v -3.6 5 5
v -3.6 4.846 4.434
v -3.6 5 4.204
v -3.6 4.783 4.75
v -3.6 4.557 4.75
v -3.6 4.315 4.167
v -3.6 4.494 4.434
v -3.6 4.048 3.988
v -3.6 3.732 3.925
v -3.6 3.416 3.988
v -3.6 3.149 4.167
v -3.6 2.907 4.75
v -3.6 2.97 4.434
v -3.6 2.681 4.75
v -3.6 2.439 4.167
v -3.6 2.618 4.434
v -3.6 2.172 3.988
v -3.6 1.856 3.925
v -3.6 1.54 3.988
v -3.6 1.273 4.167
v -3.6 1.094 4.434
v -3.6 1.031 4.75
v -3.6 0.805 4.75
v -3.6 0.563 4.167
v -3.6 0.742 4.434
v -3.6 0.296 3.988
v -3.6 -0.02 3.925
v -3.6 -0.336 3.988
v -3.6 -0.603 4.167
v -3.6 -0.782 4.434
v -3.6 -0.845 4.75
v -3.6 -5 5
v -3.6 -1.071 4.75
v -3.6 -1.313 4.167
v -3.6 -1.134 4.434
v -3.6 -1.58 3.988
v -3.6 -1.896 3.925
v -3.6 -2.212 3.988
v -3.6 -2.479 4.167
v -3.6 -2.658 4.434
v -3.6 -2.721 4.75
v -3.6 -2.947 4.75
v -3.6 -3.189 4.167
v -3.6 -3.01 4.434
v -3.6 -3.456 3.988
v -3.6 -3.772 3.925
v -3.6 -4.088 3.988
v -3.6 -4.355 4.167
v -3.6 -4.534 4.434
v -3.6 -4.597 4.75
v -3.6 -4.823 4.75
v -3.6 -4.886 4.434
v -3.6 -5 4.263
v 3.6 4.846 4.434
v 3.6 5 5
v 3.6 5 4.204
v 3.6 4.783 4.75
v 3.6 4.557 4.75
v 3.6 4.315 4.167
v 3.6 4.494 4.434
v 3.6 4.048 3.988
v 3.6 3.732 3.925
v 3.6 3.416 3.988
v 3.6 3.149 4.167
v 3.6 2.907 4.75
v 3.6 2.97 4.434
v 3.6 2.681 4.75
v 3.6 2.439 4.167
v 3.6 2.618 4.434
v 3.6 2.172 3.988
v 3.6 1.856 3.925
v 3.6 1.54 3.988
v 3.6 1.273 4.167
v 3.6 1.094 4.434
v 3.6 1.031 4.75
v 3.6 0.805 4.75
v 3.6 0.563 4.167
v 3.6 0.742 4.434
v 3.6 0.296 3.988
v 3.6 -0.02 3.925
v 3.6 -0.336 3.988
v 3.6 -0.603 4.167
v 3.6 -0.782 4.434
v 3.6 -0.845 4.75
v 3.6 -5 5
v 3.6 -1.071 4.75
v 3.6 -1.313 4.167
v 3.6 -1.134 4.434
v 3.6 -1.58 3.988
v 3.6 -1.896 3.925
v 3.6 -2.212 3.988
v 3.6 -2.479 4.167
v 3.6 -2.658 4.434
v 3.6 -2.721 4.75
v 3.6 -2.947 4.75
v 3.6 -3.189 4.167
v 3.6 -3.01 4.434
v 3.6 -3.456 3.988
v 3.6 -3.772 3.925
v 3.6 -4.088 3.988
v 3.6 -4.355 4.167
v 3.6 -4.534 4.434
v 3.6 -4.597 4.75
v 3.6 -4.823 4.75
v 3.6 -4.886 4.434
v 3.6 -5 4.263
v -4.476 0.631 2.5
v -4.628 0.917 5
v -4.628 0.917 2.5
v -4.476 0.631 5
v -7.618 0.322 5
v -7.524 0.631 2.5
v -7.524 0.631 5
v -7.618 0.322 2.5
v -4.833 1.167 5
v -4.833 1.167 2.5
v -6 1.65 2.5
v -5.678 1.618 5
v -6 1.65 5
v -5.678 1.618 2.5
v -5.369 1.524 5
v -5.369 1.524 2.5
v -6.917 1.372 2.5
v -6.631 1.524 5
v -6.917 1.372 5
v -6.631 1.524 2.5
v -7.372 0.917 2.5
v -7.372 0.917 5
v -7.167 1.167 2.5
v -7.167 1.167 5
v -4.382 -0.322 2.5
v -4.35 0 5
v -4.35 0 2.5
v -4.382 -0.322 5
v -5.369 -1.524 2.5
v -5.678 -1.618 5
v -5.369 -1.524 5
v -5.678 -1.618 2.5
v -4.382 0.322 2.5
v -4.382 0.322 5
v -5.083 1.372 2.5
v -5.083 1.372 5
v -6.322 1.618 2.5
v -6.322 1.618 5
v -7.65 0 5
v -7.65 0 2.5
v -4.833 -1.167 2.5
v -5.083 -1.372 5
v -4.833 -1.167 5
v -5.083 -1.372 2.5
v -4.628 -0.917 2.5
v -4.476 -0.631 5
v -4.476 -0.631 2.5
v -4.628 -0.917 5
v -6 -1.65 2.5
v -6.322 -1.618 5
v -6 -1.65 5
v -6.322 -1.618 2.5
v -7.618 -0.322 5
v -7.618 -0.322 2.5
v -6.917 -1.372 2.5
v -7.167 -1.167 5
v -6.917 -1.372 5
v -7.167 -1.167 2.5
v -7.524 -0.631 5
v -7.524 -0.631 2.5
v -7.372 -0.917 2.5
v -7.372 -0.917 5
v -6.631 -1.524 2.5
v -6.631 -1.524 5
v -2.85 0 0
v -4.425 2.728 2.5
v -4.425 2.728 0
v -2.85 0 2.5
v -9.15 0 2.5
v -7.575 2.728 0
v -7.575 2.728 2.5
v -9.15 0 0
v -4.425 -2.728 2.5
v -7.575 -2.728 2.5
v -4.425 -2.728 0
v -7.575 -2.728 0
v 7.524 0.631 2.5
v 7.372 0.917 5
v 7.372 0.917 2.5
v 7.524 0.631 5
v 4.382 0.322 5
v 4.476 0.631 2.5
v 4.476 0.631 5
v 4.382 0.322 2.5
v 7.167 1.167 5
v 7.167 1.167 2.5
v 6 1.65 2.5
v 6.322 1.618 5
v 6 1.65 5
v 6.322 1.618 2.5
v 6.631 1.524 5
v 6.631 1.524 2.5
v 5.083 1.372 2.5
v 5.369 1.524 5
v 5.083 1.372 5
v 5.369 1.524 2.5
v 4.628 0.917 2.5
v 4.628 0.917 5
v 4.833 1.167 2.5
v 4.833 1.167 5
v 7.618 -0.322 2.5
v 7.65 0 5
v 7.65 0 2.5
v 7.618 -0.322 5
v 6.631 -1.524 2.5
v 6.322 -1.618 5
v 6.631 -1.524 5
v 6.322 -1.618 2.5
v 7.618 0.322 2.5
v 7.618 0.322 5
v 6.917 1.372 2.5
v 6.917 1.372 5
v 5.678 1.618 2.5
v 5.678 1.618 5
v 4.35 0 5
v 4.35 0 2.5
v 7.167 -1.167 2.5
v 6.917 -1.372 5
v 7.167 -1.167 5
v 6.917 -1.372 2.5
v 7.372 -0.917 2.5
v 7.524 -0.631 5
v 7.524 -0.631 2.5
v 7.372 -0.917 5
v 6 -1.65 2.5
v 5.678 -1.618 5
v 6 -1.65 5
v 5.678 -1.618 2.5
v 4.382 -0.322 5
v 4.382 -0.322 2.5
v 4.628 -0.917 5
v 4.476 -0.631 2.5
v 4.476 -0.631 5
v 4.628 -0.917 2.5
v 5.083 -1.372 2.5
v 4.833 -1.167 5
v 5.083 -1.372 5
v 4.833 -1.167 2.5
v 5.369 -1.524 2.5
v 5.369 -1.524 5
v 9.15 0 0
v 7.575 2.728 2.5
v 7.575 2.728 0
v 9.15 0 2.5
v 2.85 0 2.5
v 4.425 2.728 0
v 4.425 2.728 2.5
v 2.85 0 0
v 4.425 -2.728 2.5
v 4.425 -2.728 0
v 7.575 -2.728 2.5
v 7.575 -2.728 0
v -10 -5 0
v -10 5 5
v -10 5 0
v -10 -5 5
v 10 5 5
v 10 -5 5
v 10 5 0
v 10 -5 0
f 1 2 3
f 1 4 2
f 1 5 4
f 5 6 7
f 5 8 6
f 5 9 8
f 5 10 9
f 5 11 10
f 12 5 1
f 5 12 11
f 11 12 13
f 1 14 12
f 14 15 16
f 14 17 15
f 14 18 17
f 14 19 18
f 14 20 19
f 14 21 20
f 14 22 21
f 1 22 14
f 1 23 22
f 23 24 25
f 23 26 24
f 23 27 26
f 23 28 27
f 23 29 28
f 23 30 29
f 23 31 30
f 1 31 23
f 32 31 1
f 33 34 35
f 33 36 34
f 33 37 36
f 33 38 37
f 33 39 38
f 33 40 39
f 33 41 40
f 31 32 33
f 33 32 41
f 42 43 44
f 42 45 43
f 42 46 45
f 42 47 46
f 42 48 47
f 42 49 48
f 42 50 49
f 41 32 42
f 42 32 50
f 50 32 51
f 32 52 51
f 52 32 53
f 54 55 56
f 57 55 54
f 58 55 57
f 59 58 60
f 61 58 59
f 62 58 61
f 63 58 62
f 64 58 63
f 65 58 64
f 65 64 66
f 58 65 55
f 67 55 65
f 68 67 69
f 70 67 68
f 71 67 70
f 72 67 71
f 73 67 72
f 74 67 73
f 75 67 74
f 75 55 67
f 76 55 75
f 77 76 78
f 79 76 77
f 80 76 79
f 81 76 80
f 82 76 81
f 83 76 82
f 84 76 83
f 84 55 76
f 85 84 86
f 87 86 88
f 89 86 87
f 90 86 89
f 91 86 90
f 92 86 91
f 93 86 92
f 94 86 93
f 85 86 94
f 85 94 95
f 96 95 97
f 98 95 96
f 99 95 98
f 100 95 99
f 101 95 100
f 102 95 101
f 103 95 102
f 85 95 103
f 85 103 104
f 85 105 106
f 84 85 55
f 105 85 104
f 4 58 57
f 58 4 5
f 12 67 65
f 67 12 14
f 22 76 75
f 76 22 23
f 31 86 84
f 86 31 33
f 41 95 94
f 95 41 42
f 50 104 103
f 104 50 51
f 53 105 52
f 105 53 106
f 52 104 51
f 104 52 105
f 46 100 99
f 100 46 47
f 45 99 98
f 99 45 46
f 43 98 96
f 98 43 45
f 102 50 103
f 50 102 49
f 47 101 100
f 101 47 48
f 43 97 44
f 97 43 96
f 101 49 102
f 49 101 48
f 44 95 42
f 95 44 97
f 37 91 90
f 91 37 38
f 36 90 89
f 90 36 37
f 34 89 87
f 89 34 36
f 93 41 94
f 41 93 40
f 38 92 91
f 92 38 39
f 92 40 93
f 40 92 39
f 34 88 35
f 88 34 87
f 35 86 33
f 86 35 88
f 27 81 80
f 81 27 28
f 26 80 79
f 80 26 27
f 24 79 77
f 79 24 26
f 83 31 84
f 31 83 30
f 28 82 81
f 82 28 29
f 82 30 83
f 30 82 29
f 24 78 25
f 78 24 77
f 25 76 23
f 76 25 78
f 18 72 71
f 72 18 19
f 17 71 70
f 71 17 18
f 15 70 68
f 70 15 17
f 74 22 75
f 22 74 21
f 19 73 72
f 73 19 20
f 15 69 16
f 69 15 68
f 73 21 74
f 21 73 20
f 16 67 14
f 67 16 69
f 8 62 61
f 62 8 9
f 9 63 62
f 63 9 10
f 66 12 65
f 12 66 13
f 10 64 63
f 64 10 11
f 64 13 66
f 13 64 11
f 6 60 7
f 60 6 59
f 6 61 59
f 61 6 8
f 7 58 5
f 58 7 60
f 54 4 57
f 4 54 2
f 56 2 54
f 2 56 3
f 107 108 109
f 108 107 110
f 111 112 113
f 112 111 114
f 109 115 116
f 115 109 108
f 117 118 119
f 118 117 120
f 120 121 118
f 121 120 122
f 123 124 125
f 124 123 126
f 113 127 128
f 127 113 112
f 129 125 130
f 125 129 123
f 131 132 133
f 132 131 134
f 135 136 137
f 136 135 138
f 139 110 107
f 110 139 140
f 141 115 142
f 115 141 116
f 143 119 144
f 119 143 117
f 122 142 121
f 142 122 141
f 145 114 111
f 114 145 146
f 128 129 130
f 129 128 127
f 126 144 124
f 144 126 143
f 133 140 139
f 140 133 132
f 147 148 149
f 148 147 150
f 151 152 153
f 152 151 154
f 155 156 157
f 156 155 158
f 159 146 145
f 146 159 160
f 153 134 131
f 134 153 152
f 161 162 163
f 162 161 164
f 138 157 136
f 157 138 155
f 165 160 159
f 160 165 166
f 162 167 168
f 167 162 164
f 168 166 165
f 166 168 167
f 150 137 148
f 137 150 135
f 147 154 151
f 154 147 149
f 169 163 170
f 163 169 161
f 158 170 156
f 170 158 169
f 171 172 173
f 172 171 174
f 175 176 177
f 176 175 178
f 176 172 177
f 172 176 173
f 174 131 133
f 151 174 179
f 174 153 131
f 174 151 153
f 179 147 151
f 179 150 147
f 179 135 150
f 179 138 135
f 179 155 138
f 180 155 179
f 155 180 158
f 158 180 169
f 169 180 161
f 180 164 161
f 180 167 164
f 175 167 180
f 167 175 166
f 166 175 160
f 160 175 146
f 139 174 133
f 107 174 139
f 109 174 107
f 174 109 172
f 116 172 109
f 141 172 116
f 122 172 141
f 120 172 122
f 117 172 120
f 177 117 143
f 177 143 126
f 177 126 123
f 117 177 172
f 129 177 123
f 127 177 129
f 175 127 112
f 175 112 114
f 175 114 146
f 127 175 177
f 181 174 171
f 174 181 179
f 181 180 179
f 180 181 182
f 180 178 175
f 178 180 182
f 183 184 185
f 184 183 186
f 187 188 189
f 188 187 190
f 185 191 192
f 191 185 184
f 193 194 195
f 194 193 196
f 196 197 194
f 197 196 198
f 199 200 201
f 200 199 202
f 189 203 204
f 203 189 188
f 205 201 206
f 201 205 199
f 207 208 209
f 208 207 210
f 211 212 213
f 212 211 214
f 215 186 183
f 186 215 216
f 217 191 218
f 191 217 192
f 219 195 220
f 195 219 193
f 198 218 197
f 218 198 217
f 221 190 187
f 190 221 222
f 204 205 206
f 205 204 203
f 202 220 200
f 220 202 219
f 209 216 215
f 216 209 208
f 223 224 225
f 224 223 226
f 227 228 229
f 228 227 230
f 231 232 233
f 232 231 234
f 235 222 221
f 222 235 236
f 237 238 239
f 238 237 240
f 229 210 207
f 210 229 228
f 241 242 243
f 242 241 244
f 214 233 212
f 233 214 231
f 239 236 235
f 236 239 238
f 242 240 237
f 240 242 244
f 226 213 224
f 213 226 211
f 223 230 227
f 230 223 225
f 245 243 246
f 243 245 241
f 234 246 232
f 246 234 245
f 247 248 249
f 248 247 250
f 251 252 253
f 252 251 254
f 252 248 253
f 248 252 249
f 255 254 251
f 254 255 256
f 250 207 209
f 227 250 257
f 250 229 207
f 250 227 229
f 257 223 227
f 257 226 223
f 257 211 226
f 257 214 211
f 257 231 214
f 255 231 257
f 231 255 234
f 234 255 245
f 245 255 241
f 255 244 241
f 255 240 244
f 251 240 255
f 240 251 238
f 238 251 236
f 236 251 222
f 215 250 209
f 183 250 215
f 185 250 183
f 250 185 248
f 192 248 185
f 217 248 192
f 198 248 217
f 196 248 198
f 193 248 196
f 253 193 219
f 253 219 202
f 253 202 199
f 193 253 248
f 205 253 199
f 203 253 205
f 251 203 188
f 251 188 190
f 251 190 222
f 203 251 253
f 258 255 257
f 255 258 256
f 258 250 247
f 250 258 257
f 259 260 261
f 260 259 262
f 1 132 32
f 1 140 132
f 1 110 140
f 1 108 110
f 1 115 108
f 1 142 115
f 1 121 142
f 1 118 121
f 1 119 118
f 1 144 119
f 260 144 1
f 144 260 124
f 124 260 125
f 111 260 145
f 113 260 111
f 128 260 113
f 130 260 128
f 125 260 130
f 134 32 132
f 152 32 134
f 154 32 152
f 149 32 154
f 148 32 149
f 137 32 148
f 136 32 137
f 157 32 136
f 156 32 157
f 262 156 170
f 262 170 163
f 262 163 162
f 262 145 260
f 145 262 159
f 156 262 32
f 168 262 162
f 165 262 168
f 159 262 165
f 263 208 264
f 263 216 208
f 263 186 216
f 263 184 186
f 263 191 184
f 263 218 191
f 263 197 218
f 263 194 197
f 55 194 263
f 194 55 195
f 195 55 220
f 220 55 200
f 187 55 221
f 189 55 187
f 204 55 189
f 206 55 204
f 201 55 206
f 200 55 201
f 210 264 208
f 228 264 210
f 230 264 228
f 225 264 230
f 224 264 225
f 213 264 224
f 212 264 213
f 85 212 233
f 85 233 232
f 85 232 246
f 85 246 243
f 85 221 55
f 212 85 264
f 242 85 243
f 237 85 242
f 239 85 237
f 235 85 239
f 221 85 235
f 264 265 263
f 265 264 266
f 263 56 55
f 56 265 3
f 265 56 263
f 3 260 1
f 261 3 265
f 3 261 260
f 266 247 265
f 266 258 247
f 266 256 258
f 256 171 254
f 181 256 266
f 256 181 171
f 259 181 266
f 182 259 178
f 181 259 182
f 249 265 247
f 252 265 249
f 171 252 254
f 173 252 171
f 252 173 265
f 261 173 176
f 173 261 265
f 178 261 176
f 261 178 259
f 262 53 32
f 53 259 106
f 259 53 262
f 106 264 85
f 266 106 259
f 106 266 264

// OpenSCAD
// file: Stamps.scad
res = 32;

module belt_stamp(width) {
    td = 1.25+0.2+0.2;
    tw = 37.52/20;
    h=1.87;
    count = 10;
    color("Red") render(convexity=4) {
        union() {
            for(i=[0:count]) {
                difference() {
                    translate([i*tw, -width/2, 0]) rotate([-90, 0, 0]) cylinder(d=td, h=width, $fn=res/2);
                    translate([-tw, -1-width/2, -tw]) cube([(count+2)*tw, width+2, tw]);
                }
            }
            translate([-tw/2, -width/2, -(h-td+0.1)]) cube([(count+1)*tw, width, h-td+0.1]);
        }
    }
}

belt_stamp(7);
// main file
use <Stamps.scad>
res=32;

module belt_clamp() {
    render(convexity=6) difference() {
        translate([0, 0, -5/2]) cube([20, 10, 5], center=true);
        translate([0, -9.4, -0.25]) rotate([180, 0, 90]) belt_stamp(7.2);
        for(i=[-1, 1]) {
            translate([i*6, 0, -6]) {
                cylinder(d=3.3, h=10, $fn=res);
                cylinder(d=6.3, h=3.5, $fn=6);
            }
        }
    }
}
translate([0, 0, 5]) belt_clamp();
/*for(i=[-1, 1]) {
    translate([i*6, 0, 0]) {
        color("blue") cylinder(d=3.3, h=2.5, $fn=res);
    }
}*/
